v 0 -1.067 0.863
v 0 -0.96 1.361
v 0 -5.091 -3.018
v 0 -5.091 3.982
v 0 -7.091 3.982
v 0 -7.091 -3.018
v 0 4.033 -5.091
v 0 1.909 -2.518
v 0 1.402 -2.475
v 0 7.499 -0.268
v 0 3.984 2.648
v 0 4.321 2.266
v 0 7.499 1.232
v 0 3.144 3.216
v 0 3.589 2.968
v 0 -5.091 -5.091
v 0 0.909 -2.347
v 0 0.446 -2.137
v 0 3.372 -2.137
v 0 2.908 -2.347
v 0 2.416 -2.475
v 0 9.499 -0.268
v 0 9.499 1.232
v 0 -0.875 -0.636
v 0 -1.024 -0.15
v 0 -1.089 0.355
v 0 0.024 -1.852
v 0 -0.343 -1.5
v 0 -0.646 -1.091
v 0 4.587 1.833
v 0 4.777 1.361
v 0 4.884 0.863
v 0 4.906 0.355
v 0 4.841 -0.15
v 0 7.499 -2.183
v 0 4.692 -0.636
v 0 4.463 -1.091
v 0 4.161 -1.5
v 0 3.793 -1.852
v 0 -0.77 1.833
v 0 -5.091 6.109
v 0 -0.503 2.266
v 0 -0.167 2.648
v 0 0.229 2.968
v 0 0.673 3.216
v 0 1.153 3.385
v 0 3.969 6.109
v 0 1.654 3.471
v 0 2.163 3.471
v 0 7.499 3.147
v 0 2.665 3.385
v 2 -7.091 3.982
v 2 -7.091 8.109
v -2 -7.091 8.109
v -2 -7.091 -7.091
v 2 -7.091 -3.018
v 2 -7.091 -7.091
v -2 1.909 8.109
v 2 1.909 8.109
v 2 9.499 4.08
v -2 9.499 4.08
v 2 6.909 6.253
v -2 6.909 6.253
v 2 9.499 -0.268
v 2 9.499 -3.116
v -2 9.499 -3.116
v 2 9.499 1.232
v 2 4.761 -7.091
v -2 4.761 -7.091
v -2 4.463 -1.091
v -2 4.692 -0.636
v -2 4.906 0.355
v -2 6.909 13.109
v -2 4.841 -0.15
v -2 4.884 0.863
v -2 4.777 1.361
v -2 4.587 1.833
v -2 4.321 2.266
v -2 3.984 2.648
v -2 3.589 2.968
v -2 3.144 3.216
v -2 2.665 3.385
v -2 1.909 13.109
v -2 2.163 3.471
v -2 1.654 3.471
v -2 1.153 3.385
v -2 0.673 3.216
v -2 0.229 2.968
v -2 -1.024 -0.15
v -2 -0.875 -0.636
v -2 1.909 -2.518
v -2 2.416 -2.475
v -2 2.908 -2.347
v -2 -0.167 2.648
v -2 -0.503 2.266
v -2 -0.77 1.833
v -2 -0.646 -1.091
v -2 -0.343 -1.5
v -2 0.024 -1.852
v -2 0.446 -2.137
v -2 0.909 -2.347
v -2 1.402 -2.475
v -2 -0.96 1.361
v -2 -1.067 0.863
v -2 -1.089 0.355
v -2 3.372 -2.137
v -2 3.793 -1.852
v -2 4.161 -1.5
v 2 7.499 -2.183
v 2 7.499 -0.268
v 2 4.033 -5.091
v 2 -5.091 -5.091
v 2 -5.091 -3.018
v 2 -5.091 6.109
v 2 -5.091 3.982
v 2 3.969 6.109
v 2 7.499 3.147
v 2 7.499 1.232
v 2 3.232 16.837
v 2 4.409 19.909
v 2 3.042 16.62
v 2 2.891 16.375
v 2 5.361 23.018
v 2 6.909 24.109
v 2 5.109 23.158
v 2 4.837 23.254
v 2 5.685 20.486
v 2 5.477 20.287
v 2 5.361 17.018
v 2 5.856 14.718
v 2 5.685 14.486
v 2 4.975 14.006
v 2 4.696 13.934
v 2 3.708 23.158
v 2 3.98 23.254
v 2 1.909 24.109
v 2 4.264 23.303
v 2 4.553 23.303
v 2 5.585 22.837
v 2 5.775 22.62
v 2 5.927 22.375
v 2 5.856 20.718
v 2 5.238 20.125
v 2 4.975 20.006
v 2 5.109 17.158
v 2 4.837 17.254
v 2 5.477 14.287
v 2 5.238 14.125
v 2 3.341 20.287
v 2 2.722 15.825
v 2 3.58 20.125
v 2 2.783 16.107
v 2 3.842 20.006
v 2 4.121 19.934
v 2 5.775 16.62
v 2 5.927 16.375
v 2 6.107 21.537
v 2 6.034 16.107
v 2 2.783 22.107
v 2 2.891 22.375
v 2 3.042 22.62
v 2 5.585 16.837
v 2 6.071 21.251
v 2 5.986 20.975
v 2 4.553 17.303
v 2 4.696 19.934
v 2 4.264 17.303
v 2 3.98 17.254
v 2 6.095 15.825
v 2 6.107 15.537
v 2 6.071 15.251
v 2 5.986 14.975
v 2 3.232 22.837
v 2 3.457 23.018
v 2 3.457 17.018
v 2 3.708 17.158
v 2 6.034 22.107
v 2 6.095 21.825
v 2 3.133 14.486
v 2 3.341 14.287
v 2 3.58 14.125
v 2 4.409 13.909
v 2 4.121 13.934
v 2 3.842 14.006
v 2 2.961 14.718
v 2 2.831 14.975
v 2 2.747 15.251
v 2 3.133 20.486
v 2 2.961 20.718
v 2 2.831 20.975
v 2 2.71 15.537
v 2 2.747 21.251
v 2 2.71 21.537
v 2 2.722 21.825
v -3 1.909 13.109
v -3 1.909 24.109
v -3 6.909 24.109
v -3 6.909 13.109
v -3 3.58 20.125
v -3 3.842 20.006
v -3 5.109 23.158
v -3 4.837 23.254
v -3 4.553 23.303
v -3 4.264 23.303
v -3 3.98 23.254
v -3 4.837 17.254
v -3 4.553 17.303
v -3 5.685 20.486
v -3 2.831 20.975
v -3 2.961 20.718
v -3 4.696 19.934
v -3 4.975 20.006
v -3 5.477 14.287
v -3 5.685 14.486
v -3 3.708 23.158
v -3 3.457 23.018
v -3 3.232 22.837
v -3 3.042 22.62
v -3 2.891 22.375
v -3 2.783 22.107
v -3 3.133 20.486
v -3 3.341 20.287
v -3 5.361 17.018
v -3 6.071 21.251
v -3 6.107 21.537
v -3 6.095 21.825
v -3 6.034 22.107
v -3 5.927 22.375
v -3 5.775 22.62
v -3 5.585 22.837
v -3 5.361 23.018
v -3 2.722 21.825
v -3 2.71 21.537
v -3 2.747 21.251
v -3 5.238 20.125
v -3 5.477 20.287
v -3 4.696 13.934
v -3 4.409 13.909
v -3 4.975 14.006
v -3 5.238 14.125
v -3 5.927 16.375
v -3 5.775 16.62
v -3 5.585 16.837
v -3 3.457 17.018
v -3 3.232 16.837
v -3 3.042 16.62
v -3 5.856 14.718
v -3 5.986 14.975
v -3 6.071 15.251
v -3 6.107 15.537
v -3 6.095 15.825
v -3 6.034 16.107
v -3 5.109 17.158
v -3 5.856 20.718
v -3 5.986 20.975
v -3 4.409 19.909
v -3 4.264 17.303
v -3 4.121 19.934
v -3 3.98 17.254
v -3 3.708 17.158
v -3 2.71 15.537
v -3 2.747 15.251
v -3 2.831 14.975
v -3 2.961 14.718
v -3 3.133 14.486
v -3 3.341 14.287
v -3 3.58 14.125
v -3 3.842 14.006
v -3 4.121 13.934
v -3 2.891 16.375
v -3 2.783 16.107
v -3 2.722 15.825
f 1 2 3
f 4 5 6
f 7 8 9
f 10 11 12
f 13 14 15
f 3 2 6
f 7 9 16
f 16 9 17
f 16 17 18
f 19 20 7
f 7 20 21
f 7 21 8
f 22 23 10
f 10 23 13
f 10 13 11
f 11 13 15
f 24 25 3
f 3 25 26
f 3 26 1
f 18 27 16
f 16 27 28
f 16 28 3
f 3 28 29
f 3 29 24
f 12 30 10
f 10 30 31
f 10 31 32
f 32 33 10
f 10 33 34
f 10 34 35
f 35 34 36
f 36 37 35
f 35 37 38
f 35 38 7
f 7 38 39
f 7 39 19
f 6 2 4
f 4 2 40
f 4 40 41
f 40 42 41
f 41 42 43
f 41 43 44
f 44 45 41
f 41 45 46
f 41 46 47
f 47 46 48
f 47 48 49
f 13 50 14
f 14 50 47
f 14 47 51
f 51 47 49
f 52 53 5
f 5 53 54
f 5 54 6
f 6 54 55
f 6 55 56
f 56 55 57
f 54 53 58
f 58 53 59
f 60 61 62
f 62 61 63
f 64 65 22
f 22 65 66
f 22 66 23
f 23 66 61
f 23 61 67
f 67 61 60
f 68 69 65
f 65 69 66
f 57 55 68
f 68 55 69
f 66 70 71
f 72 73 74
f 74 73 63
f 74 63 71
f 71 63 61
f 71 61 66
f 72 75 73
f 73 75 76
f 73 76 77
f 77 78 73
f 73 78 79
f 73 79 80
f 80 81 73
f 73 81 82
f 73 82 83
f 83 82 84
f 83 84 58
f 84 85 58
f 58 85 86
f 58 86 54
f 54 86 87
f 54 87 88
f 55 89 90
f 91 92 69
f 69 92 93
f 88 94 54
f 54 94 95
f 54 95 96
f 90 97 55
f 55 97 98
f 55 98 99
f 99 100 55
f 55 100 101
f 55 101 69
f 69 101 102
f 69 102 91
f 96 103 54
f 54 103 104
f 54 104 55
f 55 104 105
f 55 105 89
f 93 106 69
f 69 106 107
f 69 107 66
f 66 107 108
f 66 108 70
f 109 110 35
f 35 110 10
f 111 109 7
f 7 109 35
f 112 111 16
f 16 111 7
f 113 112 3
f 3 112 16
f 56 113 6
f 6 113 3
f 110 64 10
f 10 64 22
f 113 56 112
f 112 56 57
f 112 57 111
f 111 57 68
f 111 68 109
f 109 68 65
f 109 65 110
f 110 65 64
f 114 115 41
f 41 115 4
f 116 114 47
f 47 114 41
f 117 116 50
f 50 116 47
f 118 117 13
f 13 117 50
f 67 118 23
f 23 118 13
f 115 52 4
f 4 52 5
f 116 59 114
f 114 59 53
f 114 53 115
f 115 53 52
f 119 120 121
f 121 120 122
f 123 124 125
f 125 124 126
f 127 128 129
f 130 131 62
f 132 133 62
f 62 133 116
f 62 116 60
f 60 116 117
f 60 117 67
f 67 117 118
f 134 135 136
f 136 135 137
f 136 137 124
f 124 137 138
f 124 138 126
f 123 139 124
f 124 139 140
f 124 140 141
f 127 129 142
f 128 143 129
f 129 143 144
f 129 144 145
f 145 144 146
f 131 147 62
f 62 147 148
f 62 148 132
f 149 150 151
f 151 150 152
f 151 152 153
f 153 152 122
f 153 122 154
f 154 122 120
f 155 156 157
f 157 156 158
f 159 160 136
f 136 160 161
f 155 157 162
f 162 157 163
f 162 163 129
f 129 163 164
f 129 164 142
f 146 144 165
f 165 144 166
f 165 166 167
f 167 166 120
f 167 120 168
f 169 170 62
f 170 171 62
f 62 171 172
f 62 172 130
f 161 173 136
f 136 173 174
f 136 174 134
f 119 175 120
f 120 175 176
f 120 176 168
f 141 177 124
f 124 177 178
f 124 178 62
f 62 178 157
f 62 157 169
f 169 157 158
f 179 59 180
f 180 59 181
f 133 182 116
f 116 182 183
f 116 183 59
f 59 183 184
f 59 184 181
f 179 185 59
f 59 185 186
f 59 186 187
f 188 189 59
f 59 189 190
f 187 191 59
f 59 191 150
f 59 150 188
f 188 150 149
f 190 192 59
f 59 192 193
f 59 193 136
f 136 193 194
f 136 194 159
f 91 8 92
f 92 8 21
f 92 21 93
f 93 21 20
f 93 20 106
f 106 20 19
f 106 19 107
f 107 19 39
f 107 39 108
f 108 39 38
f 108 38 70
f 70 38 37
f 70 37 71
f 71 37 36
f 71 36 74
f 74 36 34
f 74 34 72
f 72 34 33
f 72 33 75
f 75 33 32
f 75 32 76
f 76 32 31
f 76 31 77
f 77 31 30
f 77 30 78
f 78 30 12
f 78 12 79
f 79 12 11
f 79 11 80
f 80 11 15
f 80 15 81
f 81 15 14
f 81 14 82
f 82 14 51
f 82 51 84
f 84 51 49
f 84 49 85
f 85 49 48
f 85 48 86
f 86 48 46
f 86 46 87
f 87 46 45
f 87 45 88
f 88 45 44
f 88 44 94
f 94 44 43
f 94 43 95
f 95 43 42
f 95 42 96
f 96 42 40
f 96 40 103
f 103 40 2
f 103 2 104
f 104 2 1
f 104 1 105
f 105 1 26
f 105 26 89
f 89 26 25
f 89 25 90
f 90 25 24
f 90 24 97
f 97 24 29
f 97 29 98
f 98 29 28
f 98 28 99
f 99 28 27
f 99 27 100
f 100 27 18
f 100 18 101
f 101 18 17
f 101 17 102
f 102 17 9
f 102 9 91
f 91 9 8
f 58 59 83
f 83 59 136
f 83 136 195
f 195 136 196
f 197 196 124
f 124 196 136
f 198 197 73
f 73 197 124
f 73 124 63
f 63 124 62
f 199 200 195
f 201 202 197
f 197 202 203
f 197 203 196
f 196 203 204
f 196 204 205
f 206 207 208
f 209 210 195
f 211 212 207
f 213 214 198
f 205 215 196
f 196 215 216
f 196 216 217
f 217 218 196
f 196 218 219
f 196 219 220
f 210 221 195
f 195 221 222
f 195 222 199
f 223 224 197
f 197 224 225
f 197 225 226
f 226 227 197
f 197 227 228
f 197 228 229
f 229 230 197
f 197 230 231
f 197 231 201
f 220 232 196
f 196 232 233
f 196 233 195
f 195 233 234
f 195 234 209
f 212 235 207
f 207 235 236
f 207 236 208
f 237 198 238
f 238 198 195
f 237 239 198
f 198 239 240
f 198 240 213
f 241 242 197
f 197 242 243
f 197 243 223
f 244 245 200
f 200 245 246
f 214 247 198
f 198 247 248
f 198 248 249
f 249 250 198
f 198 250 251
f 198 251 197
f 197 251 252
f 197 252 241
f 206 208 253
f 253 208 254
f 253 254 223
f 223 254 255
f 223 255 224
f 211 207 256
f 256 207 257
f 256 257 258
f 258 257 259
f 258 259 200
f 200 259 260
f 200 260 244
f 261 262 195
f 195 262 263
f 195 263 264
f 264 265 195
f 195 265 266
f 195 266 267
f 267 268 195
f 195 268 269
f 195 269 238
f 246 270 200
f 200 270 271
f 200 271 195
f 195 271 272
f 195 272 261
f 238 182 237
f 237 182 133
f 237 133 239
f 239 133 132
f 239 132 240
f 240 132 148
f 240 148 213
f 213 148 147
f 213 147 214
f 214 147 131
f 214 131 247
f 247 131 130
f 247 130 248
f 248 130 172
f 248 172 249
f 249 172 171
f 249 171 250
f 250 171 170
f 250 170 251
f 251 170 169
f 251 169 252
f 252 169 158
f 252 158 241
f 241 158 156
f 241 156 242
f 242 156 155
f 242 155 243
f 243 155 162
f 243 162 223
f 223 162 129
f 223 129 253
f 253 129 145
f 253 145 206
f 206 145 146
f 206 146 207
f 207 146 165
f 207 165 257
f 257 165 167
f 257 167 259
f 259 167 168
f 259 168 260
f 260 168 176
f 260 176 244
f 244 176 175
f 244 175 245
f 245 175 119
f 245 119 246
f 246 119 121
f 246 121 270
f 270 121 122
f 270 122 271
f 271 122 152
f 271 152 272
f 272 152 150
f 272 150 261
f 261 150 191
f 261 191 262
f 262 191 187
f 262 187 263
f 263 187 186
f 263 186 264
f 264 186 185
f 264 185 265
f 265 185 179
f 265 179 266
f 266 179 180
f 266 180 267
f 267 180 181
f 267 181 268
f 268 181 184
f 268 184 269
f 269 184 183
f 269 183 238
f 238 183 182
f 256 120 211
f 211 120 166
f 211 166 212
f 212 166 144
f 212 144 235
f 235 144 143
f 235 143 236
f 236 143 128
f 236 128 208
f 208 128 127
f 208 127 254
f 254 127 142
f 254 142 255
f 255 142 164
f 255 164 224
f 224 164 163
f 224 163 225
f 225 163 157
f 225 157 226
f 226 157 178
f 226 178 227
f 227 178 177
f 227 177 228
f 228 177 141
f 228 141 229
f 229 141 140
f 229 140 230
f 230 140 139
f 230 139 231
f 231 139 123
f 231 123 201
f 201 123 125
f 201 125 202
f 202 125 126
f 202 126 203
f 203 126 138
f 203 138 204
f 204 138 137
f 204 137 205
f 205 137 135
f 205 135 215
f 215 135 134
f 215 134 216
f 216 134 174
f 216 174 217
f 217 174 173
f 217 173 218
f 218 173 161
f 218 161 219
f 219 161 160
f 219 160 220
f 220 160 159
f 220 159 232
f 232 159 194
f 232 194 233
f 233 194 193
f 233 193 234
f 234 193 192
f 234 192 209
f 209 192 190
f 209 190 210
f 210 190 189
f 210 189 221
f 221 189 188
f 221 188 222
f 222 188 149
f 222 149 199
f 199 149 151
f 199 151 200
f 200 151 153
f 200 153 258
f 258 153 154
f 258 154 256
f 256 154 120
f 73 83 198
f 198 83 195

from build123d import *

# Parameters (mm, degrees)
BOSS_EXTRUDE1_DEPTH = 2
BOSS_EXTRUDE2_DEPTH = 2
SKETCH3_R           = 3
CUT_EXTRUDE1_DEPTH  = 2
SKETCH4_R           = 1.7
BOSS_EXTRUDE3_DEPTH = 5
CUT_EXTRUDE2_DEPTH  = 1


with BuildPart() as part:
    # Sketch2 → Boss-Extrude1 (new body)
    with BuildSketch(Plane(origin=(0, 0, 0), x_dir=(0, 0, -1), z_dir=(1, 0, 0))):
        Polygon((-8.109308511, -7.091340238), (-8.109308511, 4.696600231), (-4.079902129, 9.498659762), (3.11566899, 9.498659762), (7.090691489, 4.761412419), (7.090691489, -7.091340238), align=None)
    extrude(amount=-BOSS_EXTRUDE1_DEPTH)

    # Sketch1 → Boss-Extrude2 (add)
    with BuildSketch(Plane(origin=(0, 0, 0), x_dir=(0, 0, -1), z_dir=(1, 0, 0))):
        Polygon((-6.109308511, 3.968659762), (-3.147286813, 7.498659762), (-1.232116569, 7.498659762), (-1.232116569, 9.498659762), (-4.079902129, 9.498659762), (-8.109308511, 4.696600231), (-8.109308511, -7.091340238), (-3.982116569, -7.091340238), (-3.982116569, -5.091340238), (-6.109308511, -5.091340238), align=None)
        Polygon((5.090691489, 4.03347195), (5.090691489, -5.091340238), (3.017883431, -5.091340238), (3.017883431, -7.091340238), (7.090691489, -7.091340238), (7.090691489, 4.761412419), (3.11566899, 9.498659762), (0.267883431, 9.498659762), (0.267883431, 7.498659762), (2.183053674, 7.498659762), align=None)
    extrude(amount=BOSS_EXTRUDE2_DEPTH)

    # Sketch3 → Cut-Extrude1 (cut)
    with BuildSketch(Plane(origin=(0, 0, 0), x_dir=(0, 0, -1), z_dir=(1, 0, 0))):
        with Locations((-0.482116569, 1.908659762)):
            Circle(SKETCH3_R)
    extrude(amount=-CUT_EXTRUDE1_DEPTH, mode=Mode.SUBTRACT)

    # Sketch4 → Boss-Extrude3 (add)
    with BuildSketch(Plane(origin=(2, 0, 0), x_dir=(0, 0, -1), z_dir=(1, 0, 0))):
        Polygon((-15.482116569, 1.908659762), (-8.109308511, 1.908659762), (-8.109308511, 4.696600231), (-6.253170174, 6.908659762), (-20.486049047, 6.908659762), (-24.109308511, 6.908659762), (-24.109308511, 1.908659762), align=None)
        with Locations((-15.609308511, 4.408659762)):
            Circle(SKETCH4_R, mode=Mode.SUBTRACT)
        with Locations((-21.609308511, 4.408659762)):
            Circle(SKETCH4_R, mode=Mode.SUBTRACT)
    extrude(amount=-BOSS_EXTRUDE3_DEPTH)

    # Sketch5 → Cut-Extrude2 (cut)
    with BuildSketch(Plane.ZY.offset(3)):
        Polygon((8.109308511, 6.908659762), (6.253170174, 6.908659762), (8.109308511, 4.696600231), (8.109308511, 1.908659762), (13.109308511, 1.908659762), (13.109308511, 6.908659762), align=None)
    extrude(amount=-CUT_EXTRUDE2_DEPTH, mode=Mode.SUBTRACT)


solid = part.part
